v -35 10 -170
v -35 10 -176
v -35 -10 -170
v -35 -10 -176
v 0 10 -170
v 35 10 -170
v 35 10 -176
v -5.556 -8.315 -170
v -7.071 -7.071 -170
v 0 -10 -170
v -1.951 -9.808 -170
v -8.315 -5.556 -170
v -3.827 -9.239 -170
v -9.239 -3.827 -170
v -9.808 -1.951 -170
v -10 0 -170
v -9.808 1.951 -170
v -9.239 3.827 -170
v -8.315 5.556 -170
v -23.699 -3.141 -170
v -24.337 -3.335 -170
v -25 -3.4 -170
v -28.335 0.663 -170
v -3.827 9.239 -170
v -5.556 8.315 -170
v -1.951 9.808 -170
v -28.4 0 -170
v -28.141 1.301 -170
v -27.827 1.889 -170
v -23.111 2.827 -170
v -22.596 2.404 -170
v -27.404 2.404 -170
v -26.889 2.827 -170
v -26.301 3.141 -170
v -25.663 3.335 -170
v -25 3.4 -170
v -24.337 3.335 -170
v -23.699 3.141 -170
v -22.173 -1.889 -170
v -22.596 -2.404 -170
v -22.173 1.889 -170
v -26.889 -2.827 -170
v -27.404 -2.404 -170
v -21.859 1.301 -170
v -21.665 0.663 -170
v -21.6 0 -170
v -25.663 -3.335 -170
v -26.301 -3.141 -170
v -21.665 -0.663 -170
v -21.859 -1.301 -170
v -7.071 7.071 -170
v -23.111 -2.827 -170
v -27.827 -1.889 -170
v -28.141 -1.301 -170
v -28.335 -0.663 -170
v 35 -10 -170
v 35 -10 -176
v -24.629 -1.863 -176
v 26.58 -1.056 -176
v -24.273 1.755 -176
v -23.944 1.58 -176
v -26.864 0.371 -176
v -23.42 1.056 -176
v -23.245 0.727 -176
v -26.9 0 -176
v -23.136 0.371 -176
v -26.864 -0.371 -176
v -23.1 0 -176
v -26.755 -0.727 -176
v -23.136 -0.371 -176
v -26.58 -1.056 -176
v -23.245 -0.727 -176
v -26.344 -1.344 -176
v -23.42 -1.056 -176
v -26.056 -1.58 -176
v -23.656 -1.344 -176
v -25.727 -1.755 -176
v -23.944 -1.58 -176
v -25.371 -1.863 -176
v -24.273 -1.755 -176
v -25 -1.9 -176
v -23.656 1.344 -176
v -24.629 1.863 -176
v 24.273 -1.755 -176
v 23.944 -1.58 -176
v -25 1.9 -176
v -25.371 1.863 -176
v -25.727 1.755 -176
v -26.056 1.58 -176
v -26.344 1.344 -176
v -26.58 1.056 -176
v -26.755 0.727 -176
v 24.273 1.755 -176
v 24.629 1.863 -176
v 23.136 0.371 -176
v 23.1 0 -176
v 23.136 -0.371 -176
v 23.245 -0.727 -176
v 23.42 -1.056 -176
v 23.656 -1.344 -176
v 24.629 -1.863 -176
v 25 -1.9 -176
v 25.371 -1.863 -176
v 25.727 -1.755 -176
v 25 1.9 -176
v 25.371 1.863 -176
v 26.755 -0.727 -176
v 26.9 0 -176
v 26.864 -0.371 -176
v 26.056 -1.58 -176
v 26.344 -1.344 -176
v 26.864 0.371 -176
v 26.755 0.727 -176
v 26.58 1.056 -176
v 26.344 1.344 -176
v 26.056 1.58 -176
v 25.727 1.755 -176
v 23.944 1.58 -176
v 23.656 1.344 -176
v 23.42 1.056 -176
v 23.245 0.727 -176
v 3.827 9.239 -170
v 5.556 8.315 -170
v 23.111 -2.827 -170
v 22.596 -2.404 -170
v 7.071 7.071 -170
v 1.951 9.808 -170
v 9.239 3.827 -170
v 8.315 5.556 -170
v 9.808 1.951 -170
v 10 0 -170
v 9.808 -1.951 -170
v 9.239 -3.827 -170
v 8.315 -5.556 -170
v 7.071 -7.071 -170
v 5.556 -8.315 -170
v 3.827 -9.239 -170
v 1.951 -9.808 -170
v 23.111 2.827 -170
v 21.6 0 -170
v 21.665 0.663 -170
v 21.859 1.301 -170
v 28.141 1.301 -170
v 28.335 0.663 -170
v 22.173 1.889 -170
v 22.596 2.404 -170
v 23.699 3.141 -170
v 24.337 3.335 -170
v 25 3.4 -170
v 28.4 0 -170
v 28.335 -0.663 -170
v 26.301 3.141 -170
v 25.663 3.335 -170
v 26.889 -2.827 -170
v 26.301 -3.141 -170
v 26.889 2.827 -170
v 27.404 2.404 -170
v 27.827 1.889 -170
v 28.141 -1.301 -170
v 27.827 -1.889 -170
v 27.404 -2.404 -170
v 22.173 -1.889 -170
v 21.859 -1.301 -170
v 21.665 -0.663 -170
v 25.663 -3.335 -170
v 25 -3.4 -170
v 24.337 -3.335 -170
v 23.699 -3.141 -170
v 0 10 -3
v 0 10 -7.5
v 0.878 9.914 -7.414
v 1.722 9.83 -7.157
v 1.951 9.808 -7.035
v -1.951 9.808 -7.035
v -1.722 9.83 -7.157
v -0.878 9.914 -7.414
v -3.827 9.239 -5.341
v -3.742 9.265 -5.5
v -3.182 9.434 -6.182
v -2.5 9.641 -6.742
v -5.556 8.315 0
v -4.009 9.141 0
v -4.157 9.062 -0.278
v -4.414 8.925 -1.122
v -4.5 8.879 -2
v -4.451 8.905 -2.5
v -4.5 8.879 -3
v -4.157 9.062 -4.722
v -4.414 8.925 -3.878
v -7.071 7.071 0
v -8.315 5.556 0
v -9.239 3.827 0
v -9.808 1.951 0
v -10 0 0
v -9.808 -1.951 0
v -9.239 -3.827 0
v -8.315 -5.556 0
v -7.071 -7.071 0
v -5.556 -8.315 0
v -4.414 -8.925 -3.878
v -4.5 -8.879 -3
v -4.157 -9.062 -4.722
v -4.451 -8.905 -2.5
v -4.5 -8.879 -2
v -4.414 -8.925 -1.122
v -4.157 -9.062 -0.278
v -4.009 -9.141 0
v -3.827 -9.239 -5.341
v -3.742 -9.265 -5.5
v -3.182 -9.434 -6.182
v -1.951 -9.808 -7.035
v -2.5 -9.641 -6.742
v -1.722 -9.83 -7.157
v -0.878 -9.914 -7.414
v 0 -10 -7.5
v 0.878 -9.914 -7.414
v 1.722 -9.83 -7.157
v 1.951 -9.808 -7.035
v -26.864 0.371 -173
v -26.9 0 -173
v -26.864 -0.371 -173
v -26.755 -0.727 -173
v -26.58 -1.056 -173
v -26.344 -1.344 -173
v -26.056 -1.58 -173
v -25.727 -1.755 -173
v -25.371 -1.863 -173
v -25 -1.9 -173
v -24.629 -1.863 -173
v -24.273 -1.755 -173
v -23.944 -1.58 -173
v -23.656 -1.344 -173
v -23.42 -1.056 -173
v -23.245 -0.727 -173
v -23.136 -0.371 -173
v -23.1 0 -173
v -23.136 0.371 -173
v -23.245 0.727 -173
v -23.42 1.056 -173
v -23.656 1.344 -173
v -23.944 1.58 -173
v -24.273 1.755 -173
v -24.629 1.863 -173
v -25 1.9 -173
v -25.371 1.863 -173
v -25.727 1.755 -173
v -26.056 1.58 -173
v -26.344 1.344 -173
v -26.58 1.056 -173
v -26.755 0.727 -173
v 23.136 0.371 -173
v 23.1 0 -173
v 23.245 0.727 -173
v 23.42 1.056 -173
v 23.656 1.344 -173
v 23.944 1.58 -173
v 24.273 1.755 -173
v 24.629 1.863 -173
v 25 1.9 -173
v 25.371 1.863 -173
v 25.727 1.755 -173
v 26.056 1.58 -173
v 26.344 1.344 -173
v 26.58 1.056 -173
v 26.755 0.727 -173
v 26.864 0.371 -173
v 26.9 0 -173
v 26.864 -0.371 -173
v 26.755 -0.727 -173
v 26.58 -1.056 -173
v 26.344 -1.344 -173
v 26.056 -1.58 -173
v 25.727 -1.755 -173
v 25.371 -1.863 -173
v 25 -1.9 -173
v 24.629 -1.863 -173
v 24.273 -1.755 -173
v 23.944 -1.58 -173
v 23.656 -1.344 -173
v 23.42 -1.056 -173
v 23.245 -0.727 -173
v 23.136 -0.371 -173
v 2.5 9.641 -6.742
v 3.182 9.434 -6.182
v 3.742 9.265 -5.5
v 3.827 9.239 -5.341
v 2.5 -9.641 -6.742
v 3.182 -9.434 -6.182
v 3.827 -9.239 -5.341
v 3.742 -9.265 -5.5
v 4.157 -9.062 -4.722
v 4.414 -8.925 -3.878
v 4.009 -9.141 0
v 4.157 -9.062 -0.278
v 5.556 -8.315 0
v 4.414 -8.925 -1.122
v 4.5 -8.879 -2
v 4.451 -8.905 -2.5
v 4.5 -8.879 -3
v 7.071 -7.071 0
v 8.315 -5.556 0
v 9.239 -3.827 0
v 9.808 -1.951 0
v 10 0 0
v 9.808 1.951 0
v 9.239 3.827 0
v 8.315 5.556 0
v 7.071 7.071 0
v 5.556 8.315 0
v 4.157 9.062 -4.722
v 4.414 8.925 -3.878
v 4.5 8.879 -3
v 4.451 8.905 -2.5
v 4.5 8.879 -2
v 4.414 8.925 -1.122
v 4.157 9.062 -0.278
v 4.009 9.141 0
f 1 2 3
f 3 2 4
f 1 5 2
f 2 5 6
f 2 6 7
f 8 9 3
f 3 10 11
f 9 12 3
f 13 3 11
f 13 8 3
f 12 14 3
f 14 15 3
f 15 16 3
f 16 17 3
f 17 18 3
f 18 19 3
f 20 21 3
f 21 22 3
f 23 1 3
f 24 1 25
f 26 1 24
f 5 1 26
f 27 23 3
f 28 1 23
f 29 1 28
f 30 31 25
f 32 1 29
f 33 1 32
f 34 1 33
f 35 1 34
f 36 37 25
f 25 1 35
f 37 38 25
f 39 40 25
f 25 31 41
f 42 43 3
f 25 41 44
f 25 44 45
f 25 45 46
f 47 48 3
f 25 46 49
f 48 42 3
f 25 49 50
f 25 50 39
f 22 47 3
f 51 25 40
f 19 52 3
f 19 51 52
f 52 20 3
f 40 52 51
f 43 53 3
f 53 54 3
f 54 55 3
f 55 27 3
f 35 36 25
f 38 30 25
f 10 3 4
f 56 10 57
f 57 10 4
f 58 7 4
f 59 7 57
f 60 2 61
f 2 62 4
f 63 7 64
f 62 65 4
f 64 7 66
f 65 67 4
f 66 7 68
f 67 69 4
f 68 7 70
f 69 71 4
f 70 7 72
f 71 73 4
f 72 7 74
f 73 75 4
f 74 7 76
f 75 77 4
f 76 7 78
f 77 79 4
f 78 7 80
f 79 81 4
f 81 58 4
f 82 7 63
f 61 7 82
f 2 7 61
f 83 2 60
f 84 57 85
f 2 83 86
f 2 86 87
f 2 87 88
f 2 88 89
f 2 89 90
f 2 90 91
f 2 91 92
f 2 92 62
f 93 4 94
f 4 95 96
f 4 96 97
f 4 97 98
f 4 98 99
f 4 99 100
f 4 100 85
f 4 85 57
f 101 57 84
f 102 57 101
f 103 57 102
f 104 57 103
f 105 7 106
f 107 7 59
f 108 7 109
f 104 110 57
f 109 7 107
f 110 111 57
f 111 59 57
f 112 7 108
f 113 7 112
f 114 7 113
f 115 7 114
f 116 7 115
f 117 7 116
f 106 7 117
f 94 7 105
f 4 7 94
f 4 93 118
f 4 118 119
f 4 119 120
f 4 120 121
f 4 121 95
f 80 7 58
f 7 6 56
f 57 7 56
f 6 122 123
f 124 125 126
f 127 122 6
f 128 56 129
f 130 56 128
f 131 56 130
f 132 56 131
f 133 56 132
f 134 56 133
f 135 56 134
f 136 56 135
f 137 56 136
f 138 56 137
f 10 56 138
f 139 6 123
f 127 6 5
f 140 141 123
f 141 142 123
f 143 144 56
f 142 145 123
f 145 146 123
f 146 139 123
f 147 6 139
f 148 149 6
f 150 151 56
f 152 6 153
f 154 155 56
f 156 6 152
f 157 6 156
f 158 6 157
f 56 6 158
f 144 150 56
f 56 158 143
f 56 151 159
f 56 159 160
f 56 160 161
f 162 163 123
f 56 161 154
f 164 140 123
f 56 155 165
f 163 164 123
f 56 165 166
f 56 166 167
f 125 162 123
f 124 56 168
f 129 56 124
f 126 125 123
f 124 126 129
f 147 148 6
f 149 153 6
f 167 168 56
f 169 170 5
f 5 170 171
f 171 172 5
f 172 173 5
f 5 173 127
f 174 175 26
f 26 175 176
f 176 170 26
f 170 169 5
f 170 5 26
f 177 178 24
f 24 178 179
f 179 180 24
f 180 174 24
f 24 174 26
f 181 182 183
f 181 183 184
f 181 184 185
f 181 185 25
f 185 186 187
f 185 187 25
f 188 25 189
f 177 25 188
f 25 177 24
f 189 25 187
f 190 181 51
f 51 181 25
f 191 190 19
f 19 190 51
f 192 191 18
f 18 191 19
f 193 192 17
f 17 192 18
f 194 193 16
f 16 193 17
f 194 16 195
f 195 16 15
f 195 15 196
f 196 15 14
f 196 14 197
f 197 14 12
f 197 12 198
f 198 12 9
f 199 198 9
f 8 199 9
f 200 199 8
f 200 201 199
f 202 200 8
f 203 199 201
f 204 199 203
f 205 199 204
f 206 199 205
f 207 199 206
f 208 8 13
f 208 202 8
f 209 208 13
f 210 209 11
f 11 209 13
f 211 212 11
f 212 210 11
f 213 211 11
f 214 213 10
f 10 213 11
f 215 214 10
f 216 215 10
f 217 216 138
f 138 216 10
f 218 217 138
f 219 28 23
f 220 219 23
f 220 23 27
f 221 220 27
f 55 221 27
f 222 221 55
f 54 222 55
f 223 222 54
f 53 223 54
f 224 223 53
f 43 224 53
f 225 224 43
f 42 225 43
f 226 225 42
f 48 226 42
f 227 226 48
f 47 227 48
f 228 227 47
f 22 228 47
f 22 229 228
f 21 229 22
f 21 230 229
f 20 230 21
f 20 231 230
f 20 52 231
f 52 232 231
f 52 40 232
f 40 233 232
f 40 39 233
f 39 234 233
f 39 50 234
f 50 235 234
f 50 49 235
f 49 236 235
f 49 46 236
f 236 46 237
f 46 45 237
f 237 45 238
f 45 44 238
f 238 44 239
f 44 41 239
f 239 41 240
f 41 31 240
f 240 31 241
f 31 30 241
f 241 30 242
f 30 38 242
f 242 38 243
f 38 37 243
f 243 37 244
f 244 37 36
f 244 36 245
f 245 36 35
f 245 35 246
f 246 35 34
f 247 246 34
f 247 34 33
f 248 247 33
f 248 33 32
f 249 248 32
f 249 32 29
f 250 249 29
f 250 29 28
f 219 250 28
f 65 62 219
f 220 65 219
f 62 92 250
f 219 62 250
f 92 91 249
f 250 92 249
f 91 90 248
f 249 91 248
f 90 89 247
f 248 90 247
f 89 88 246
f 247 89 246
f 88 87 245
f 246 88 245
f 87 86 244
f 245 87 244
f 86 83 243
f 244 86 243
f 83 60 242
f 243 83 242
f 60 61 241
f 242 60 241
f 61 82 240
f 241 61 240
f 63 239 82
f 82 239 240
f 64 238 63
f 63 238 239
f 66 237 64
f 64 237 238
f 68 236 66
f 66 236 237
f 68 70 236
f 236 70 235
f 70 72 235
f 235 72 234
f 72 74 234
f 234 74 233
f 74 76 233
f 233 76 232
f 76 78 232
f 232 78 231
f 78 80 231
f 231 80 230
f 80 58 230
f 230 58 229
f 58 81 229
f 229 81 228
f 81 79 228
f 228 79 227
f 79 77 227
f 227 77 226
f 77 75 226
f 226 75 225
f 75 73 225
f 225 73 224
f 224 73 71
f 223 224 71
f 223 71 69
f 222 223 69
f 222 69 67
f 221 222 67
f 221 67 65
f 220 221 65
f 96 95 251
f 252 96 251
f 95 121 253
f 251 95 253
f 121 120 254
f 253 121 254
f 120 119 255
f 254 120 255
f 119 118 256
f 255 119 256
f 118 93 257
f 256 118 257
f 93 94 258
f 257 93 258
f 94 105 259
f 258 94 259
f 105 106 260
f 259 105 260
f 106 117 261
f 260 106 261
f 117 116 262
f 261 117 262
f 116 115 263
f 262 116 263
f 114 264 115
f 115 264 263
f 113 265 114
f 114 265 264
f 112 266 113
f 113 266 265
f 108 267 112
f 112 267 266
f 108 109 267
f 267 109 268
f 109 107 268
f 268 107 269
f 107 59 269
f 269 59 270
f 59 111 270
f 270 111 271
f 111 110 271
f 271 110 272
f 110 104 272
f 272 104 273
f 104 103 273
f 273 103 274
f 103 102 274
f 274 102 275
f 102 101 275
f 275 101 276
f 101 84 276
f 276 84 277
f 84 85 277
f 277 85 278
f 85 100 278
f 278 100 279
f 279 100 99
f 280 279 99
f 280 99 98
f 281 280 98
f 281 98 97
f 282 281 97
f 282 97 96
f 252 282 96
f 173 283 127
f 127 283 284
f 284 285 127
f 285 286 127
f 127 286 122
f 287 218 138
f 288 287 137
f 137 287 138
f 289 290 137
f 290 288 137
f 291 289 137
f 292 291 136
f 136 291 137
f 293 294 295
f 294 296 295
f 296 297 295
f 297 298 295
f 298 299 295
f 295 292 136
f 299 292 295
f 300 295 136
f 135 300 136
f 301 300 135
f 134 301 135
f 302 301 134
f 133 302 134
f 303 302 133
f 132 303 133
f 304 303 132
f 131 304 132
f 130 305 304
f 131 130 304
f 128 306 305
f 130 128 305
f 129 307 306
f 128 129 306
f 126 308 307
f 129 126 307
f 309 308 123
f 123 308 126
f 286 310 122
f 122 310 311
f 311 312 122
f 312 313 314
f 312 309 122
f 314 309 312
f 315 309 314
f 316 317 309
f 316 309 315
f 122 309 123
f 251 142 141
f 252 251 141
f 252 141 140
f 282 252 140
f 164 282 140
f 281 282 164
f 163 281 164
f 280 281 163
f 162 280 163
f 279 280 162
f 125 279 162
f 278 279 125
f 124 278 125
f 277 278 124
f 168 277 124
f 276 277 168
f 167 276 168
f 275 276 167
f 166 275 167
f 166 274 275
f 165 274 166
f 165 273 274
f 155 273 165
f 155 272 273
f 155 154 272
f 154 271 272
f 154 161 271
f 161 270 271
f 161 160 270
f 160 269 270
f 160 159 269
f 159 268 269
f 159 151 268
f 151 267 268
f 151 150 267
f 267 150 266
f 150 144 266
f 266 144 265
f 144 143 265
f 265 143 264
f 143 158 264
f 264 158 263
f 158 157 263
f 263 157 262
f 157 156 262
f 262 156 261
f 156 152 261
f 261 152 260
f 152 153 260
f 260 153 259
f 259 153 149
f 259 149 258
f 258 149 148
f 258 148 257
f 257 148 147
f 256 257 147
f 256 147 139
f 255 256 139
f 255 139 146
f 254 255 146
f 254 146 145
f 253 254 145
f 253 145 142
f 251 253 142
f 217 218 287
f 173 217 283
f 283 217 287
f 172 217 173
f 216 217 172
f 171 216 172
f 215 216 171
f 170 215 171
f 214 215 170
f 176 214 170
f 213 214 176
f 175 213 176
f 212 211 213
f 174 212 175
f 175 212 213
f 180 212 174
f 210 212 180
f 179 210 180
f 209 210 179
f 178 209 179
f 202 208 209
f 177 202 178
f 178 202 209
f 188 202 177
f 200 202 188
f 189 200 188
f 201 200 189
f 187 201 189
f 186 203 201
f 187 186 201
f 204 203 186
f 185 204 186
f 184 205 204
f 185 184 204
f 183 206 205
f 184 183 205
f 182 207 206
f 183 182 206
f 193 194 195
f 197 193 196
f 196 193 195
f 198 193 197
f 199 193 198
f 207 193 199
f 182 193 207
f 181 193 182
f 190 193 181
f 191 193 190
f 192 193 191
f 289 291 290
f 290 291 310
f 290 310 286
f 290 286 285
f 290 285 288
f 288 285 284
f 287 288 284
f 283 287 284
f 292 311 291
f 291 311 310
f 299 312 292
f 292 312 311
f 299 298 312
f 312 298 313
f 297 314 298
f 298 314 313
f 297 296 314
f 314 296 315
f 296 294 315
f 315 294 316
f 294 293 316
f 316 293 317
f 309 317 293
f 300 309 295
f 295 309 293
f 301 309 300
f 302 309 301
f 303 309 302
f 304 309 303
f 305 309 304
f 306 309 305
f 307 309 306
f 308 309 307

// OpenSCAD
$fn=32;
module spool(dia=300, core_dia=52.5, thickness=100){

	color([0.1,0.1,0.1]) difference(){
		cylinder(r=dia/2, h=thickness);
		cylinder(r=core_dia/2,h=thickness);	
	}

}

module stand_with_side_mount(height=170, plate_thickness=12){

	difference(){
		union(){
			cylinder(r=10, h=height);
			translate([-10,-10,height]) cube([20,20,40]);
		}
		translate([-plate_thickness/2,-10,height+10]) cube([plate_thickness,20,30]);
		translate([-50,0,height+15]) rotate([0,90,0]) cylinder(r=1.5,h=100);
		translate([-50,0,height+30]) rotate([0,90,0]) cylinder(r=1.5,h=100);
	

		translate([0,10,3]) rotate([90,0,0]) cylinder(r=4.5, h=20);
		translate([0,10,2]) rotate([90,0,0]) cylinder(r=4.5, h=20);
	}

}

module stand_with_top_mount(height=170){

	difference(){
		union(){
			cylinder(r=10, h=height);
			translate([-35,-10,height]) cube([70,20,6]);
		}
  		translate([25,0,height-10]) rotate([0,0,0]) cylinder(r=1.9, h=20);
   		translate([25,0,height]) cylinder(r2=1.9,r1=3.4, h=3); 
   		translate([-25,0,height-10]) rotate([0,0,0]) cylinder(r=1.9, h=20);
	    translate([-25,0,height]) cylinder(r2=1.9,r1=3.4, h=3); 
   		

		translate([0,10,3]) rotate([90,0,0]) cylinder(r=4.5, h=20);
		translate([0,10,2]) rotate([90,0,0]) cylinder(r=4.5, h=20);
	}

}


//spool();
//translate([0,-10,-15]) rotate([90,0,0]) 
rotate([180,0,0])  stand_with_top_mount();
